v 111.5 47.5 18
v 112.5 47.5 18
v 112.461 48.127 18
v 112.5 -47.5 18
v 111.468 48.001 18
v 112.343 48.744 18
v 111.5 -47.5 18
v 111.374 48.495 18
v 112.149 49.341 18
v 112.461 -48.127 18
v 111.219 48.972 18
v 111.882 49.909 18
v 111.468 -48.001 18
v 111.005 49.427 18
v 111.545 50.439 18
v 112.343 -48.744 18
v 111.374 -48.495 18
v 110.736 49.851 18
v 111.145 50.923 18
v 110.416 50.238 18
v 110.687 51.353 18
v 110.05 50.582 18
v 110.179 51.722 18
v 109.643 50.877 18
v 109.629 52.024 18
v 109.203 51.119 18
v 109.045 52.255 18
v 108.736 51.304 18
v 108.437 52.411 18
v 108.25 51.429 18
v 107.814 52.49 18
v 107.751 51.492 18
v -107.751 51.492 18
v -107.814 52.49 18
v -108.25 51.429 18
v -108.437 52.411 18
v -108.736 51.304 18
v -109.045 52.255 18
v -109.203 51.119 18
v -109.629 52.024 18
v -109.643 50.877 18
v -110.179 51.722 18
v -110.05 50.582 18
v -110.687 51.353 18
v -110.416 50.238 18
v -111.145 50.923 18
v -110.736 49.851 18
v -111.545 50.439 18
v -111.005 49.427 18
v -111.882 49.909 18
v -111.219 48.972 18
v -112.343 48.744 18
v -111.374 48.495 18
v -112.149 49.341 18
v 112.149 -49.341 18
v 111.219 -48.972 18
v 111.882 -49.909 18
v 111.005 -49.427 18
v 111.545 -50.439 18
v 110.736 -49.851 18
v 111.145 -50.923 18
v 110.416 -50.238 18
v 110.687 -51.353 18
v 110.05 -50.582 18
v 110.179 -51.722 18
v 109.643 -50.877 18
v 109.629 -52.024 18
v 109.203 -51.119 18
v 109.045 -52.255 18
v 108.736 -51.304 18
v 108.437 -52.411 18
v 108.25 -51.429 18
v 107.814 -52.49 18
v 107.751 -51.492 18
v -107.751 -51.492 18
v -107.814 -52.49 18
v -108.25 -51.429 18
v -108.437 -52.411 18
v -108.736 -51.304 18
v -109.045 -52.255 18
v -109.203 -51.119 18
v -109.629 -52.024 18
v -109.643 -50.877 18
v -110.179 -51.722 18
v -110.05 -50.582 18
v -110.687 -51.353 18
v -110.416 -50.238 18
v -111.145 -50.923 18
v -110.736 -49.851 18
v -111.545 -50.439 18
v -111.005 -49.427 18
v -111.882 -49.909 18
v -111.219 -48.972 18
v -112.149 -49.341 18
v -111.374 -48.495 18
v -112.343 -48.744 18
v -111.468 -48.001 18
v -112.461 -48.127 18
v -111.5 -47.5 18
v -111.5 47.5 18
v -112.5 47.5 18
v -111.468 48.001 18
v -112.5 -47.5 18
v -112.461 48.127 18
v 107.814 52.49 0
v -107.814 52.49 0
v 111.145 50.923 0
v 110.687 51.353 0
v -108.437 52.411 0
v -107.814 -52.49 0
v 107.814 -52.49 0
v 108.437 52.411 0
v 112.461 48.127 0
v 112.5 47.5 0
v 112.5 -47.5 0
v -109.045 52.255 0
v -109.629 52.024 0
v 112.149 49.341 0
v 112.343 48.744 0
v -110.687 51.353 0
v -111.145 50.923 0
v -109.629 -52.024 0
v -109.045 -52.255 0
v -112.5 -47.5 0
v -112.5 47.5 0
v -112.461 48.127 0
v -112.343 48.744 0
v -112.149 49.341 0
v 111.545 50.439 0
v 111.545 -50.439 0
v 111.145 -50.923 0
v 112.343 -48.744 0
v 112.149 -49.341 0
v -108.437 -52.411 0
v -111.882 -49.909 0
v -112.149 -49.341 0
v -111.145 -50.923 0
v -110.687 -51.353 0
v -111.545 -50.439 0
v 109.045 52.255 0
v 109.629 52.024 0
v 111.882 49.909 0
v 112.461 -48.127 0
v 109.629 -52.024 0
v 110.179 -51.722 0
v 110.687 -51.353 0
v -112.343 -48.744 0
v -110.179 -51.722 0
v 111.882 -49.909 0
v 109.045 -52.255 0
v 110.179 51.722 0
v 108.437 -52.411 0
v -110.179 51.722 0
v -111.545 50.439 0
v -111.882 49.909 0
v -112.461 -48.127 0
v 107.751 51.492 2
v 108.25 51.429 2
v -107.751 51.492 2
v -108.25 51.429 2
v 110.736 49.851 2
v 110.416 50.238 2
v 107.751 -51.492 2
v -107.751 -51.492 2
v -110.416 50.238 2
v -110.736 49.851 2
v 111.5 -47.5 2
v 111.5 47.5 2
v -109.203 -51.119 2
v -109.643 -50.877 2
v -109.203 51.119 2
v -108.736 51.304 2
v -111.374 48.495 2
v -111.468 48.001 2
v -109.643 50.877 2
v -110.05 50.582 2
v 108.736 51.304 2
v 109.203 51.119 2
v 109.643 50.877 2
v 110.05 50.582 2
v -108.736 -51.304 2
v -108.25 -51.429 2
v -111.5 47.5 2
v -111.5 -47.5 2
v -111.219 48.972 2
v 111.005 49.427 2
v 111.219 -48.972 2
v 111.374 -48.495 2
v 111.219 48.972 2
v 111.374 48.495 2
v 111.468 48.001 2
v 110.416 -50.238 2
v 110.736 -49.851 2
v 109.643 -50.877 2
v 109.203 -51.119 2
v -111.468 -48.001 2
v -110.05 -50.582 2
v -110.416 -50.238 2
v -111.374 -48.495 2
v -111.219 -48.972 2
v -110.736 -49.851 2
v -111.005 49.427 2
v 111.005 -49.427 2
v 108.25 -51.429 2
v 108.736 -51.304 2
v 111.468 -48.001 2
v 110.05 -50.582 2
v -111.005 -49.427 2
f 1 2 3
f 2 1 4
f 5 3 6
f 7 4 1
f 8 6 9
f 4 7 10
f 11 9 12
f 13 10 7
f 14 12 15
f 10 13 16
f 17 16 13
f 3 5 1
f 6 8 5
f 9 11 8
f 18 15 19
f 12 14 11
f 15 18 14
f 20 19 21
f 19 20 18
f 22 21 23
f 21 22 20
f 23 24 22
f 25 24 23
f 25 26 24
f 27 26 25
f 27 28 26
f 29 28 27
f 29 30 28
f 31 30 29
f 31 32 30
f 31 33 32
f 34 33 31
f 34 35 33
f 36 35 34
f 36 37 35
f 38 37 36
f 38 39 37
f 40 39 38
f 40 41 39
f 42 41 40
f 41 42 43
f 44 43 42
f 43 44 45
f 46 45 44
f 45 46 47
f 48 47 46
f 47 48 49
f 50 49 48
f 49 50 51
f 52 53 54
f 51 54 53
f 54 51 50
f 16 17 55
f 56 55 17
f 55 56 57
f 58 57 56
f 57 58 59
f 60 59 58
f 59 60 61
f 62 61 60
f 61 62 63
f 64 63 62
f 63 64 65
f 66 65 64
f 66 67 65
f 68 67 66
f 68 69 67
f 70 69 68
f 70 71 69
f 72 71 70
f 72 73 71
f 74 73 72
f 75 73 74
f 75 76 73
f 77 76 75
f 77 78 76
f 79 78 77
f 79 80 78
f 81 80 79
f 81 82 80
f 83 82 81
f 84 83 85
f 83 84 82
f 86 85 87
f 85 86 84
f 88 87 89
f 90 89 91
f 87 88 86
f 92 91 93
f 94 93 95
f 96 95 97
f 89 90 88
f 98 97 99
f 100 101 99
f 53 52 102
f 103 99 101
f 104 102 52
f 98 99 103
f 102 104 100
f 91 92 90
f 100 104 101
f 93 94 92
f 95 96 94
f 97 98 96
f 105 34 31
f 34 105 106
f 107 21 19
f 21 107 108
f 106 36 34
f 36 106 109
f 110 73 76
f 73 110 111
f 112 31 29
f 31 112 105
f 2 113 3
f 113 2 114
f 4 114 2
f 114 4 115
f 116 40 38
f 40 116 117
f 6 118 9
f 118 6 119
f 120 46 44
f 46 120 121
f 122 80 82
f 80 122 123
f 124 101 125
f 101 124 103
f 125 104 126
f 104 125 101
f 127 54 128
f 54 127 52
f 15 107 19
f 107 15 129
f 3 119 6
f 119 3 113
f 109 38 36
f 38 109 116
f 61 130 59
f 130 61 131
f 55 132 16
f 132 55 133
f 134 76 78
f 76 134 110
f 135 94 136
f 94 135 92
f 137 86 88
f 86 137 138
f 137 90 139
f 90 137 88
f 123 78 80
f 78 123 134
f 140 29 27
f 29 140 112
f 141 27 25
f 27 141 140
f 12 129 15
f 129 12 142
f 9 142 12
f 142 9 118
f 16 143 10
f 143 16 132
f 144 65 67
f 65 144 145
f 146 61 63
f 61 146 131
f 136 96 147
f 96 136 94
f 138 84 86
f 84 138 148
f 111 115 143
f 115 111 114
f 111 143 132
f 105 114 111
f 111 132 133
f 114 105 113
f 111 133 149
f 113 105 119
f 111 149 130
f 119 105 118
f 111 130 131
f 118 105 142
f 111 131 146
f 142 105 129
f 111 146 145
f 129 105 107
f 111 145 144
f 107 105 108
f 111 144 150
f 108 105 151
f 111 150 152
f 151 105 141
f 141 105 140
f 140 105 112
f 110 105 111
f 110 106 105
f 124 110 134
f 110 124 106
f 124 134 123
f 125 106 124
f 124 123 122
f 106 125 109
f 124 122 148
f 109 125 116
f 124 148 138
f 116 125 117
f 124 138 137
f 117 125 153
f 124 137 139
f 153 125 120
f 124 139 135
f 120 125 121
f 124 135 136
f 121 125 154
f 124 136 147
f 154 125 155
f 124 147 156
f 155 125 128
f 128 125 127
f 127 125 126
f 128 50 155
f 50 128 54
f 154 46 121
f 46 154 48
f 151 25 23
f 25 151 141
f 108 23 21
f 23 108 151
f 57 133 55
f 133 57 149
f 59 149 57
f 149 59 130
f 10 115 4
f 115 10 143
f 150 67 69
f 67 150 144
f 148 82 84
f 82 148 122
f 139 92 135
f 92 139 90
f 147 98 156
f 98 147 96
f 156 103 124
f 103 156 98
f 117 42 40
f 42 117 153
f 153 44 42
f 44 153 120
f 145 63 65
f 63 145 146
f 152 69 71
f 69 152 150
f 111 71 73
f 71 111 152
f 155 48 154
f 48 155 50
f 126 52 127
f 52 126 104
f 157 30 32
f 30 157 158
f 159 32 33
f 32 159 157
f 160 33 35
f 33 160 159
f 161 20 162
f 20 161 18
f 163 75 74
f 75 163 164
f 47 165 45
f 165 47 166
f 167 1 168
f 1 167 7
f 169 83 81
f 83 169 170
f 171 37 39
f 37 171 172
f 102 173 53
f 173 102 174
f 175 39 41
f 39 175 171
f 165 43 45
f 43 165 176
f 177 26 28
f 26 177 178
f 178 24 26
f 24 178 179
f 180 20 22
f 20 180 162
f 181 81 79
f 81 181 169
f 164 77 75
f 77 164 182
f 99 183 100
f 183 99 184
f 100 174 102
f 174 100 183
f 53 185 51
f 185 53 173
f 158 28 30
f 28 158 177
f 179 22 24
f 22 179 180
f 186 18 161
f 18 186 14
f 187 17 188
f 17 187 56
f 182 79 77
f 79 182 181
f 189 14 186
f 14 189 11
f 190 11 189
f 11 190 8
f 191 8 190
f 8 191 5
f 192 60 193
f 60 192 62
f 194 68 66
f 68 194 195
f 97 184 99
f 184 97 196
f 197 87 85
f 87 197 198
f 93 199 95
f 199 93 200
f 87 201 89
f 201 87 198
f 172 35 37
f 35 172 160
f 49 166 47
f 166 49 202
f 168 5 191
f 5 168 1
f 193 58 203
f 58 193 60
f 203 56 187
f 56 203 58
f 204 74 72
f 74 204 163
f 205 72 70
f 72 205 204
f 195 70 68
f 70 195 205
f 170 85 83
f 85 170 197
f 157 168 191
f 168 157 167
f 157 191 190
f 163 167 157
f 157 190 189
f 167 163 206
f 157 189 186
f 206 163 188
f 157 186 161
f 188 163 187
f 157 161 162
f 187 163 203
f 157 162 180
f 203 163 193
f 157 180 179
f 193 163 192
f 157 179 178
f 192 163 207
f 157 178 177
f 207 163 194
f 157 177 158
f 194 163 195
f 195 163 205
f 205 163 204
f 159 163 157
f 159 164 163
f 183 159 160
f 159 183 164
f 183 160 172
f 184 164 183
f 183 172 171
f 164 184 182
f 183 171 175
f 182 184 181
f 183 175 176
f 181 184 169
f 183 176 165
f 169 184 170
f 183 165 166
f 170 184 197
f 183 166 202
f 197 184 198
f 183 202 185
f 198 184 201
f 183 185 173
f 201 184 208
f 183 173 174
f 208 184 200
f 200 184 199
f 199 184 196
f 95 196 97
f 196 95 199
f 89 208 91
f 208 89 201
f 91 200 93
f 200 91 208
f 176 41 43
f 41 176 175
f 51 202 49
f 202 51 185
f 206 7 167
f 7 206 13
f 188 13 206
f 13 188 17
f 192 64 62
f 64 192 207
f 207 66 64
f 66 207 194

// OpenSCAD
$fn = 50;


difference() {
	union() {
		hull() {
			translate(v = [-107.5000000000, 47.5000000000, 0]) {
				cylinder(h = 18, r = 5);
			}
			translate(v = [107.5000000000, 47.5000000000, 0]) {
				cylinder(h = 18, r = 5);
			}
			translate(v = [-107.5000000000, -47.5000000000, 0]) {
				cylinder(h = 18, r = 5);
			}
			translate(v = [107.5000000000, -47.5000000000, 0]) {
				cylinder(h = 18, r = 5);
			}
		}
	}
	union() {
		translate(v = [0, 0, 2]) {
			hull() {
				translate(v = [-107.5000000000, 47.5000000000, 0]) {
					cylinder(h = 16, r = 4);
				}
				translate(v = [107.5000000000, 47.5000000000, 0]) {
					cylinder(h = 16, r = 4);
				}
				translate(v = [-107.5000000000, -47.5000000000, 0]) {
					cylinder(h = 16, r = 4);
				}
				translate(v = [107.5000000000, -47.5000000000, 0]) {
					cylinder(h = 16, r = 4);
				}
			}
		}
	}
}
